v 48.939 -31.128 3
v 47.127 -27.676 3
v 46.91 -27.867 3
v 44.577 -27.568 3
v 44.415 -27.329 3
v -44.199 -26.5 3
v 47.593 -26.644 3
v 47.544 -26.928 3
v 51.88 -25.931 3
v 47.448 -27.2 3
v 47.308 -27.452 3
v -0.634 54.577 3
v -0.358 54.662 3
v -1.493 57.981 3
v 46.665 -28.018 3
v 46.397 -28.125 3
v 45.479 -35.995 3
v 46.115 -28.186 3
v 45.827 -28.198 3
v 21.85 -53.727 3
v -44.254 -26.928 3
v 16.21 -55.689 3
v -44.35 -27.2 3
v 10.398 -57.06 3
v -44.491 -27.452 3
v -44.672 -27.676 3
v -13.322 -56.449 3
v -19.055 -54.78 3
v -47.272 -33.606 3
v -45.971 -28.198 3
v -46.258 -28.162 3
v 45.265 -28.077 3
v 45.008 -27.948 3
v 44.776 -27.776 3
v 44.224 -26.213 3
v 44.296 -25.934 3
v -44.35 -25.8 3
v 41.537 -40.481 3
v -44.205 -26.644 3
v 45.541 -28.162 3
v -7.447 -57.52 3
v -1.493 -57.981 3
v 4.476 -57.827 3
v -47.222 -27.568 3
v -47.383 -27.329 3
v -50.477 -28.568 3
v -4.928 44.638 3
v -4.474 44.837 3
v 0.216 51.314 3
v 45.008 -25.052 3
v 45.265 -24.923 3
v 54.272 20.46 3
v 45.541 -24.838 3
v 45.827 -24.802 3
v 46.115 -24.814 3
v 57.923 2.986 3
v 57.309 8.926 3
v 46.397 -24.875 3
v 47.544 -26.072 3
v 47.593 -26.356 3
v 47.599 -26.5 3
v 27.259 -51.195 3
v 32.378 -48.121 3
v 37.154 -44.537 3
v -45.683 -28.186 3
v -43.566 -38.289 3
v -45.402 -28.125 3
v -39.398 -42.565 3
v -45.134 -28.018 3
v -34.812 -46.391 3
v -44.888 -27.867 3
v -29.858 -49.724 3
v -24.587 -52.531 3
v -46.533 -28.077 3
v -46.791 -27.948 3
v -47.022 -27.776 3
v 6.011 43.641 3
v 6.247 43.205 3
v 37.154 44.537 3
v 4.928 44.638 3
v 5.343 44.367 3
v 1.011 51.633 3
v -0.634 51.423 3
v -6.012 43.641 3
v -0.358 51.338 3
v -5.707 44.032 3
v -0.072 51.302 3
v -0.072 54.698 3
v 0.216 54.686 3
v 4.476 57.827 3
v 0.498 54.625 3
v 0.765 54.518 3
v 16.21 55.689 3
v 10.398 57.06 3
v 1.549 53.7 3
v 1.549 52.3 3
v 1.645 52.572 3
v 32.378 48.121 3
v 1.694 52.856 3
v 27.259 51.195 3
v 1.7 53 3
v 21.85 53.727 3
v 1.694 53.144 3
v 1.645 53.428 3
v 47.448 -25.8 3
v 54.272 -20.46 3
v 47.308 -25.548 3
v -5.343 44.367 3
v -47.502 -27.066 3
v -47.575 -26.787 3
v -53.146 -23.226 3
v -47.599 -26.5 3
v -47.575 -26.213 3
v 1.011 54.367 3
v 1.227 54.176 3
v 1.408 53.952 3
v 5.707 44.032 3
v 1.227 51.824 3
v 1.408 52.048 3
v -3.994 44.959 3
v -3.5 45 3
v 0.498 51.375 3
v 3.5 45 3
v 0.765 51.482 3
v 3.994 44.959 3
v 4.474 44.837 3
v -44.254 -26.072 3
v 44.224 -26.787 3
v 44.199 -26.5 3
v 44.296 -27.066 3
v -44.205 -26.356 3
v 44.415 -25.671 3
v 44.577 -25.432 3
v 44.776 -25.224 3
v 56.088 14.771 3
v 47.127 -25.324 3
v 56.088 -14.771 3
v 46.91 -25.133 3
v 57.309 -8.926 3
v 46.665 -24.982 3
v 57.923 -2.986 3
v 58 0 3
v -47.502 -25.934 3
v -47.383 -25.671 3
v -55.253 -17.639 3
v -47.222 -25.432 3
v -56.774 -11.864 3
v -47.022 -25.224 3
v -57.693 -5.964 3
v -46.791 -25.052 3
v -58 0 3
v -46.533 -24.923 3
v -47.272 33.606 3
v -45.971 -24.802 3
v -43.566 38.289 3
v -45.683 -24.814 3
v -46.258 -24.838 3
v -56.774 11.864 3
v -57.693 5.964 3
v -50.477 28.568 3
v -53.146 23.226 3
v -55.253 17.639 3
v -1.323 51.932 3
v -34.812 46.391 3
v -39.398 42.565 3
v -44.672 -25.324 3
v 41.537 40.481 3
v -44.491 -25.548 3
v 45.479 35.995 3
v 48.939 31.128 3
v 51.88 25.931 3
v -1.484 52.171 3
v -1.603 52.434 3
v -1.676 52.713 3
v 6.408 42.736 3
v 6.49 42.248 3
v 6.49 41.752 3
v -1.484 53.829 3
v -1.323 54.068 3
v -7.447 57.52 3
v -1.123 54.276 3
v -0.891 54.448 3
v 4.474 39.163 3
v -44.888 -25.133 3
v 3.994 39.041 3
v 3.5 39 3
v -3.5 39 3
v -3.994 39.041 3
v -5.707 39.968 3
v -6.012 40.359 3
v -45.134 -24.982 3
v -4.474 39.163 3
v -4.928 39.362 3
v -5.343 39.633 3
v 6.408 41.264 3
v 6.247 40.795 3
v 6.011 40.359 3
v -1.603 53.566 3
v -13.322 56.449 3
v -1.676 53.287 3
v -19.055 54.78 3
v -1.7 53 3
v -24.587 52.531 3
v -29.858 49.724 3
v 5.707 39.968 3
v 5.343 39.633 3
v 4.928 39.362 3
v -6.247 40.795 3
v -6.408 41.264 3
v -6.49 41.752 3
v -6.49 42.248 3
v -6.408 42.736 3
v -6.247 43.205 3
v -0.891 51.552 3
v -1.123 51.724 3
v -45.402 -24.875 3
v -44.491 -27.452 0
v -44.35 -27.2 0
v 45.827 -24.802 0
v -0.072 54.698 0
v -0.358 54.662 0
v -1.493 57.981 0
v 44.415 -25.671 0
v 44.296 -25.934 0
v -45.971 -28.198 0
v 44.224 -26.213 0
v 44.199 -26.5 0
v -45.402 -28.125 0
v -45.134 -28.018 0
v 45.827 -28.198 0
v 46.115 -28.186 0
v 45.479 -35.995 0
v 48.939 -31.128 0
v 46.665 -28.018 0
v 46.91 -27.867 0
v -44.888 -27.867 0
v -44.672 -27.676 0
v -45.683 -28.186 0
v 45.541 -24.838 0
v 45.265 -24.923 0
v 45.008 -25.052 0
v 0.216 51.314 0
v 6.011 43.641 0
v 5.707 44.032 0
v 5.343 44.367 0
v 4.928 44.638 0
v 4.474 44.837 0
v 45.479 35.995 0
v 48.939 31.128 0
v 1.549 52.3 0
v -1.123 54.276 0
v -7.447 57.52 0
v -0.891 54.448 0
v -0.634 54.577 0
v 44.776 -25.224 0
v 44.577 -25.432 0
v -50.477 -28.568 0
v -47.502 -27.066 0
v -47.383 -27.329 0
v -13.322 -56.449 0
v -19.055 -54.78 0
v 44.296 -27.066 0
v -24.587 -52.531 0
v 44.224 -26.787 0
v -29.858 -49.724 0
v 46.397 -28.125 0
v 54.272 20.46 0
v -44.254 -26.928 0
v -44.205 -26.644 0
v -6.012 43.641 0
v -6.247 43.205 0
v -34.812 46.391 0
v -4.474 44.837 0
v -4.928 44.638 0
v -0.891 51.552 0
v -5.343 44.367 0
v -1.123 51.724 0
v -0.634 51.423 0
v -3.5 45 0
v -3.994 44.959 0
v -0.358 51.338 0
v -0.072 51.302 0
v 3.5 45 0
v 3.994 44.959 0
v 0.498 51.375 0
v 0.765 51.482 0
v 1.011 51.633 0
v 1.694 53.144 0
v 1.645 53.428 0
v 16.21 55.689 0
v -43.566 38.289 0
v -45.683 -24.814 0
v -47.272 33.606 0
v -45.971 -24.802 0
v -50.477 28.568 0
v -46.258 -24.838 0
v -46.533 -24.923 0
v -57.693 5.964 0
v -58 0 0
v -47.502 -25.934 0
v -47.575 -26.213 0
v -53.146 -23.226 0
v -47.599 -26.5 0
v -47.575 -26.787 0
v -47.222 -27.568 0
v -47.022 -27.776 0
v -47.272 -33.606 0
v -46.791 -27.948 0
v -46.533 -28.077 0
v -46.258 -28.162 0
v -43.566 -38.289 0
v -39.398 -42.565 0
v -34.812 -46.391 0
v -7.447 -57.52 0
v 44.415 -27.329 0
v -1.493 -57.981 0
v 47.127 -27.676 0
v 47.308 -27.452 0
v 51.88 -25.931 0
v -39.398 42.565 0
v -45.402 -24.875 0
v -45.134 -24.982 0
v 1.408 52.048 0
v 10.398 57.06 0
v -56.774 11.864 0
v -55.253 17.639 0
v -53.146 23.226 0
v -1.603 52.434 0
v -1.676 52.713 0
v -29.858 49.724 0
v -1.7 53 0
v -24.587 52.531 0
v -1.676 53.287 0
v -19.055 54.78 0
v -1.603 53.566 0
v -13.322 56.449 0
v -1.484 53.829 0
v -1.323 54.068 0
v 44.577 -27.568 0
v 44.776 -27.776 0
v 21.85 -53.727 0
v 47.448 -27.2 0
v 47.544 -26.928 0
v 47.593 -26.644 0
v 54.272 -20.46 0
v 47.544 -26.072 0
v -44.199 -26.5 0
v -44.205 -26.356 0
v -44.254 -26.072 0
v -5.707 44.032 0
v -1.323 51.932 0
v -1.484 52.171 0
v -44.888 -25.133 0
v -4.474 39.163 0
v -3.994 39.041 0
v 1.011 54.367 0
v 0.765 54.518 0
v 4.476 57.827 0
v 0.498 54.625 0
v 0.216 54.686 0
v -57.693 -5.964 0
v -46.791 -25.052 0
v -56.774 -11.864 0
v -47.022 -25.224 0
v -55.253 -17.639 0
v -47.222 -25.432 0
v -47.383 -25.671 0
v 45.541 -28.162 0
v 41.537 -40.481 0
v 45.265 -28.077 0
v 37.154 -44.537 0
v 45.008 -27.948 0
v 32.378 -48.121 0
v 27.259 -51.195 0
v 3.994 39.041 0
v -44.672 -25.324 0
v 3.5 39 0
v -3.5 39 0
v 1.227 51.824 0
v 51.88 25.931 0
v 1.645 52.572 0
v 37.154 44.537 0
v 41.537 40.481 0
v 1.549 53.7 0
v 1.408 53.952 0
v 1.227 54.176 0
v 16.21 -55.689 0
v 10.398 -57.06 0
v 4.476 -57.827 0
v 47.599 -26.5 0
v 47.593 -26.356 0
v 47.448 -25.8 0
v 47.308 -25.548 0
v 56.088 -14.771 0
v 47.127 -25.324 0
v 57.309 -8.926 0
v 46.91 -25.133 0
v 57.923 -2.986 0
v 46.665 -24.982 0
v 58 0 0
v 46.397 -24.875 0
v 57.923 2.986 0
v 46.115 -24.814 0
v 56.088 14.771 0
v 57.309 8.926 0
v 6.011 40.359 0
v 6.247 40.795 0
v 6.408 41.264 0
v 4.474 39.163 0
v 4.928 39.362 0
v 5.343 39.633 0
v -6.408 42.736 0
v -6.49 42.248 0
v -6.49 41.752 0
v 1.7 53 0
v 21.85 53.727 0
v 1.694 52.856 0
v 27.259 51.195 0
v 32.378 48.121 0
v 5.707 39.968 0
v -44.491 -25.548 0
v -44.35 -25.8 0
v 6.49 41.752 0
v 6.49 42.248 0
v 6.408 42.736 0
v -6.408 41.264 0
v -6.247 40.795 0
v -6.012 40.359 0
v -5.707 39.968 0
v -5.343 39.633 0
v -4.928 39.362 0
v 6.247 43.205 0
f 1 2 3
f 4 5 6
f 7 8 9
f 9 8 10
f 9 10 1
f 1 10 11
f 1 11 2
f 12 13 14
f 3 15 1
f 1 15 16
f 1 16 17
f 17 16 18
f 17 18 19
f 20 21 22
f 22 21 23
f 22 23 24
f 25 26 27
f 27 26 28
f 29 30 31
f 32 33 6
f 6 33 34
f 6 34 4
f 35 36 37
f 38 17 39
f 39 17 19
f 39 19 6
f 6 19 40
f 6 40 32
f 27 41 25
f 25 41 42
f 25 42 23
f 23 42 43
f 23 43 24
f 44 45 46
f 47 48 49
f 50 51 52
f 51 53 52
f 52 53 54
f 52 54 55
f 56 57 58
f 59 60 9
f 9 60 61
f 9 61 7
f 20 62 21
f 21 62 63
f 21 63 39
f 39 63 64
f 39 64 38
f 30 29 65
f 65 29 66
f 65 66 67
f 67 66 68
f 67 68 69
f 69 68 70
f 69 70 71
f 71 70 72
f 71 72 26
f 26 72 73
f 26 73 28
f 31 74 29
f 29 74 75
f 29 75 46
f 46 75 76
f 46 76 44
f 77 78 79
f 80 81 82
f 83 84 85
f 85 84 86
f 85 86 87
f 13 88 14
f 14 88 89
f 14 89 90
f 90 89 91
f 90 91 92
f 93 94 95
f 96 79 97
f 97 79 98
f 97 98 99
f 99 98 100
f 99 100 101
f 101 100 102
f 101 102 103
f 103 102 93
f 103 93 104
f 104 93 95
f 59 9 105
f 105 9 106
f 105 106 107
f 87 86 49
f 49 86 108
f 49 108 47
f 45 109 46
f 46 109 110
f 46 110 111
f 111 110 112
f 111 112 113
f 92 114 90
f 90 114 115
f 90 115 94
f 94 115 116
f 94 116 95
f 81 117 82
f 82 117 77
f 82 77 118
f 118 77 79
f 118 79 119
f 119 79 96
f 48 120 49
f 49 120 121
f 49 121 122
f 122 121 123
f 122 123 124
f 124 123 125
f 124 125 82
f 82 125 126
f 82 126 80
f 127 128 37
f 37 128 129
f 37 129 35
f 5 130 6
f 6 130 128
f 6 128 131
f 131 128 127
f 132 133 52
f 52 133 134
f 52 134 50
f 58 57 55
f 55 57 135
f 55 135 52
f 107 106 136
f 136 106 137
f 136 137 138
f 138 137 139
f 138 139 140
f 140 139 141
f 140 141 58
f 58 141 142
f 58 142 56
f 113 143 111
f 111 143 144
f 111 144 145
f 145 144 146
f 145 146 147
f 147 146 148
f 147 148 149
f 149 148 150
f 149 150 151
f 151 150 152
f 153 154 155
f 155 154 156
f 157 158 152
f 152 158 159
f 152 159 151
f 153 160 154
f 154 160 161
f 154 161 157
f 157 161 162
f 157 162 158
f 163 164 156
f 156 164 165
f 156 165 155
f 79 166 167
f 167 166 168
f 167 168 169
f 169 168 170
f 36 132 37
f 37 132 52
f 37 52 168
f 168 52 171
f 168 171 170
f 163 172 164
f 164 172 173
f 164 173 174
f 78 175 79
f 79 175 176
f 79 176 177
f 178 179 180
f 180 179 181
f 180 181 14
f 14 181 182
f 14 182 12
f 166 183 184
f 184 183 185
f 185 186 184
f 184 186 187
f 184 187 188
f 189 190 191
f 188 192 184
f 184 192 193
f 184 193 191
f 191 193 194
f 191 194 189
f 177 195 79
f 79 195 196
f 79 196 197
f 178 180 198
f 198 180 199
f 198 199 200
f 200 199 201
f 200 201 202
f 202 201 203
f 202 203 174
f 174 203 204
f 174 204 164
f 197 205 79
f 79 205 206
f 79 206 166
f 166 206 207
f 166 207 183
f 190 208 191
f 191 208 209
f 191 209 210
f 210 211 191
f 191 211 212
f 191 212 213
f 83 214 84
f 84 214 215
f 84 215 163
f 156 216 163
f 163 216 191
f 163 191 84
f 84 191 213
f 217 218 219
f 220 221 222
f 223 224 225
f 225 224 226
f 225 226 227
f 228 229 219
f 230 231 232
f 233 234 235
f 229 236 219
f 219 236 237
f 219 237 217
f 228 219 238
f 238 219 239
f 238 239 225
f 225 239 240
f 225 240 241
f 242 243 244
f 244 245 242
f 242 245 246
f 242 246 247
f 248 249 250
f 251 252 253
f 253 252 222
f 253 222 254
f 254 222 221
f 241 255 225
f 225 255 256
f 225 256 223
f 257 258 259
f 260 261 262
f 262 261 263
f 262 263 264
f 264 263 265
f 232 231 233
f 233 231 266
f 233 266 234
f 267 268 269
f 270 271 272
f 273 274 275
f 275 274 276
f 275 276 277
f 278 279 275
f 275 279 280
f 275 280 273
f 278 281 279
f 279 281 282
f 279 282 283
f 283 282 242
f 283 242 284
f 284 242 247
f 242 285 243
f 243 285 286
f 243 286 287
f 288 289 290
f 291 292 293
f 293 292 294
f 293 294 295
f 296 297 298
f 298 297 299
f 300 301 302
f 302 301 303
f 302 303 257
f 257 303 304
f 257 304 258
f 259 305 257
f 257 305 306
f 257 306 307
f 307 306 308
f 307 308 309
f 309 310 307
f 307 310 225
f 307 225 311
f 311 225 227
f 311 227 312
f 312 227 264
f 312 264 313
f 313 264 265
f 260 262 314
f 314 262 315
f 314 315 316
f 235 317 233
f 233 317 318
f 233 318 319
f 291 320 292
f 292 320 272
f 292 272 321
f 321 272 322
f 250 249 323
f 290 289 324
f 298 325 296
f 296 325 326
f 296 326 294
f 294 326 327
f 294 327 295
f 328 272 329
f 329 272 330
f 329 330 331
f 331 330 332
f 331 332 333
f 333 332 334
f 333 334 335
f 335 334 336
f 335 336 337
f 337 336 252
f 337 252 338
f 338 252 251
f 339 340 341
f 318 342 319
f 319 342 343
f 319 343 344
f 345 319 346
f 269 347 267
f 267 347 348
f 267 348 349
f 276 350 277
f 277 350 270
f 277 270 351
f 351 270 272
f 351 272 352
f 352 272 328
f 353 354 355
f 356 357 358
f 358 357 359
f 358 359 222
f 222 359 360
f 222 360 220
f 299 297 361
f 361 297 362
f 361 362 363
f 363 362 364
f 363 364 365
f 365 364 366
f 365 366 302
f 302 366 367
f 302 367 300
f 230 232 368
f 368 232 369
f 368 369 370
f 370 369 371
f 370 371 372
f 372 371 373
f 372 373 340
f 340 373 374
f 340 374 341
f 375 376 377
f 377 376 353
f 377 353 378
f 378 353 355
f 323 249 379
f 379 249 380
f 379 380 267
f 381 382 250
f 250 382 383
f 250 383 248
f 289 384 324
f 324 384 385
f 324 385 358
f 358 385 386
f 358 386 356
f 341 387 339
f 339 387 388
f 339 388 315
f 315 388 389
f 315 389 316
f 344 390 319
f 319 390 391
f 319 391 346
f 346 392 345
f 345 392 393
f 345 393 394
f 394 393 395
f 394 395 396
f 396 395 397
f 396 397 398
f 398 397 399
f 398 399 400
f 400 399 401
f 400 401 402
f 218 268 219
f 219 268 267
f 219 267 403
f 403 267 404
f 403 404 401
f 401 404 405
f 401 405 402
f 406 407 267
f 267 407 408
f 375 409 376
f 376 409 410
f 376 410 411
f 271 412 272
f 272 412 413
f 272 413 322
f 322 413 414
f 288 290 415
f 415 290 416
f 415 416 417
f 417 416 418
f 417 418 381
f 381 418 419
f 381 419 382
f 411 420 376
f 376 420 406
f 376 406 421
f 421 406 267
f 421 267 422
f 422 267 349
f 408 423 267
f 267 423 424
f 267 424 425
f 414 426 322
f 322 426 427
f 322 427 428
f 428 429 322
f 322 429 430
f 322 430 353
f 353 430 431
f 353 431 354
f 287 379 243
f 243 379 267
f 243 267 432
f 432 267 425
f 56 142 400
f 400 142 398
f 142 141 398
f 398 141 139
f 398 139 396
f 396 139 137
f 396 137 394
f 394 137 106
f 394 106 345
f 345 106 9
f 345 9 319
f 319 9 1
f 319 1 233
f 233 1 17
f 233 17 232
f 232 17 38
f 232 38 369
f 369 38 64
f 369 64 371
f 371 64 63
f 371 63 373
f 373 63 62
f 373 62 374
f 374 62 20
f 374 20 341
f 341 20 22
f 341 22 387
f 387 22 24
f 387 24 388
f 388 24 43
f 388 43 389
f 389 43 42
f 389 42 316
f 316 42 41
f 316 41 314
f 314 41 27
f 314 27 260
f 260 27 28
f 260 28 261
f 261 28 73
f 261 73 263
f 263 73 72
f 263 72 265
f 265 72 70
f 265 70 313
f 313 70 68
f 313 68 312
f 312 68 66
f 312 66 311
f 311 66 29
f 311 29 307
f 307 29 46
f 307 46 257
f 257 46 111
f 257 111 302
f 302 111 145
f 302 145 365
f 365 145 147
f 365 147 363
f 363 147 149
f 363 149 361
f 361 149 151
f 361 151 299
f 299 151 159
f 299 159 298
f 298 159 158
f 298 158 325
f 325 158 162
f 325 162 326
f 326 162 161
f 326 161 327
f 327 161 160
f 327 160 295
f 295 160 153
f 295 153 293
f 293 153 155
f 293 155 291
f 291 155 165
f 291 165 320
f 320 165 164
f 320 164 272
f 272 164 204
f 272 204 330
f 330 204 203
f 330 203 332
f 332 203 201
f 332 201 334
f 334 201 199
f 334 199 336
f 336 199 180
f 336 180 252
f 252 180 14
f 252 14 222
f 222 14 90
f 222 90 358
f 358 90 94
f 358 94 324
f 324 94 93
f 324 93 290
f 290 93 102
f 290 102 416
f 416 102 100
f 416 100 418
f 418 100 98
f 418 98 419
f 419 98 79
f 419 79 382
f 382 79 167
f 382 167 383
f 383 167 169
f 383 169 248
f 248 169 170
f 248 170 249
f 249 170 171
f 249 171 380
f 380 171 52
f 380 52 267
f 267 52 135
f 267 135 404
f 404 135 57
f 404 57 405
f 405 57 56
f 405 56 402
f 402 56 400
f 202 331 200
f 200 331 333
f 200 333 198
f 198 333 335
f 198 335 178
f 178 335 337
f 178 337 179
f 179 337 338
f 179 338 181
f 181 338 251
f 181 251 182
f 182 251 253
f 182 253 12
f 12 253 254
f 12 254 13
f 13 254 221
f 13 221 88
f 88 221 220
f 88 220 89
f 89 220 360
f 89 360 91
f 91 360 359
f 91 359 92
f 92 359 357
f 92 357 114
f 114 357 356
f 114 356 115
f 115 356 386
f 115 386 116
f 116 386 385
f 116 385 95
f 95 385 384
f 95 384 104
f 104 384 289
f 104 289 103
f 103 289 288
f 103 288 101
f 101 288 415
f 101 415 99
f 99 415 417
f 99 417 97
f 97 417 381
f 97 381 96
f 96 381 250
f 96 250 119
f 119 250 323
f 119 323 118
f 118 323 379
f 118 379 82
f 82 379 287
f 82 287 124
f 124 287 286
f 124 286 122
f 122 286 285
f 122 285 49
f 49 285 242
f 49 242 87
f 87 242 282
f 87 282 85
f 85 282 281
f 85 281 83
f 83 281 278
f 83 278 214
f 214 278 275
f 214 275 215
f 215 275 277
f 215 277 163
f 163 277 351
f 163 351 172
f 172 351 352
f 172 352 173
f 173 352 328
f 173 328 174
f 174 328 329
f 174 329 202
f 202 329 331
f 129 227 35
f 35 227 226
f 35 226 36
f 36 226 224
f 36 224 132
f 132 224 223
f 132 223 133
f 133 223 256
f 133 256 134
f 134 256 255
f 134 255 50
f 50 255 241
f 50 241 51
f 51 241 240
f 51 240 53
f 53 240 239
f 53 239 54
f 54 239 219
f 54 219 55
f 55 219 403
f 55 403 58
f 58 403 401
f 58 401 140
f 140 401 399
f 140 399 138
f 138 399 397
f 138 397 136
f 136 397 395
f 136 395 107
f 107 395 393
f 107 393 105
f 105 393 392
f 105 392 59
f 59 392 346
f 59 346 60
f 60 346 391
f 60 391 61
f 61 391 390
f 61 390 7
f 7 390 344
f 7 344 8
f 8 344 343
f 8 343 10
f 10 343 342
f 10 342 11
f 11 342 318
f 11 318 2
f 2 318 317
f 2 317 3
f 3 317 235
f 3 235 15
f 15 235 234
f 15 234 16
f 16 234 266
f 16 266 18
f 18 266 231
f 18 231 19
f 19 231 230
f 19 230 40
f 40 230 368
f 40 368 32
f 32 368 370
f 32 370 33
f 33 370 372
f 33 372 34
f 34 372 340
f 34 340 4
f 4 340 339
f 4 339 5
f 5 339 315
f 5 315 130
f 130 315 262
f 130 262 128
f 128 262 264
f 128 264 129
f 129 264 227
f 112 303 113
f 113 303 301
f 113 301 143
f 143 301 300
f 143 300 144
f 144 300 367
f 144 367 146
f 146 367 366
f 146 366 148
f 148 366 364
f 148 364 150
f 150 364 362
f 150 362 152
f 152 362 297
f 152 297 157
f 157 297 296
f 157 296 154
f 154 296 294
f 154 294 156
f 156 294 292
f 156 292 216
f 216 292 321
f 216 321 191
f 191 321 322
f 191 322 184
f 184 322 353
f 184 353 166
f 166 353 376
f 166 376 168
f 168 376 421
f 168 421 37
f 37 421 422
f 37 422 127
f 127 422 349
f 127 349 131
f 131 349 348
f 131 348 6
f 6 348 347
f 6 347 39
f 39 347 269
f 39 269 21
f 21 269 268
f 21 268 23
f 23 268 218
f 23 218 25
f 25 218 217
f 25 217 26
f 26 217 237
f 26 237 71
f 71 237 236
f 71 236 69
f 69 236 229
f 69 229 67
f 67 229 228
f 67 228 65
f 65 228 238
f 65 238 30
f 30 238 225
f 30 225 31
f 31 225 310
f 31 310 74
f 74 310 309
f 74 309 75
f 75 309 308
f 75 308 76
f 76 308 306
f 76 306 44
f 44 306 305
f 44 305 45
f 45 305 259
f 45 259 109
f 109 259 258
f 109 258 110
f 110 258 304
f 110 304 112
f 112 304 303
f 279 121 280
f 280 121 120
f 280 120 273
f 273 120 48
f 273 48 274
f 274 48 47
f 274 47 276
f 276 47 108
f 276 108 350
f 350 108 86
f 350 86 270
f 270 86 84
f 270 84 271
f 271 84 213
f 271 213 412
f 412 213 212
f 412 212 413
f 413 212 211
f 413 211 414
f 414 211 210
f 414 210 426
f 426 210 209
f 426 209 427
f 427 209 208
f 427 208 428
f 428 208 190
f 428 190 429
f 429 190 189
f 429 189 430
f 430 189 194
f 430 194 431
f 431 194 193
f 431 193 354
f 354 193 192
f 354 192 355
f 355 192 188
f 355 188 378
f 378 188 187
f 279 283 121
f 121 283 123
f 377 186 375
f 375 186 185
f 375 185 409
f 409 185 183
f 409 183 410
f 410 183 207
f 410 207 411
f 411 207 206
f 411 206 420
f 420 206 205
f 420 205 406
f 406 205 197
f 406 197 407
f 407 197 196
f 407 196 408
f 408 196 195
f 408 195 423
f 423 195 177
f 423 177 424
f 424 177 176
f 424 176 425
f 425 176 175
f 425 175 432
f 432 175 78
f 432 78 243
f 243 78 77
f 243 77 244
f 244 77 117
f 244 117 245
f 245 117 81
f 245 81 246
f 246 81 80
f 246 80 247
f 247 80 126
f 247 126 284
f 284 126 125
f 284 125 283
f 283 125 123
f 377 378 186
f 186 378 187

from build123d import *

# Parameters (mm, degrees)
SKETCH1_R           = 58
SKETCH1_R_2         = 1.7
BOSS_EXTRUDE1_DEPTH = 3
CUT_EXTRUDE1_DEPTH  = 83.079230016


with BuildPart() as part:
    # Sketch1 → Boss-Extrude1 (new body)
    with BuildSketch(Plane.XY):
        Circle(SKETCH1_R)
        with Locations((0, 53)):
            Circle(SKETCH1_R_2, mode=Mode.SUBTRACT)
        with Locations((45.899346401, -26.5)):
            Circle(SKETCH1_R_2, mode=Mode.SUBTRACT)
        with Locations((-45.899346401, -26.5)):
            Circle(SKETCH1_R_2, mode=Mode.SUBTRACT)
    extrude(amount=BOSS_EXTRUDE1_DEPTH)

    # Sketch2 → Cut-Extrude1 (cut, through all)
    with BuildSketch(Plane.XY.offset(3)):
        with BuildLine():
            Line((3.5, 45), (-3.5, 45))
            ThreePointArc((-3.5, 45), (-6.5, 42), (-3.5, 39))
            Line((-3.5, 39), (3.5, 39))
            ThreePointArc((3.5, 39), (6.5, 42), (3.5, 45))
        make_face()
    extrude(amount=-CUT_EXTRUDE1_DEPTH, mode=Mode.SUBTRACT)


solid = part.part
